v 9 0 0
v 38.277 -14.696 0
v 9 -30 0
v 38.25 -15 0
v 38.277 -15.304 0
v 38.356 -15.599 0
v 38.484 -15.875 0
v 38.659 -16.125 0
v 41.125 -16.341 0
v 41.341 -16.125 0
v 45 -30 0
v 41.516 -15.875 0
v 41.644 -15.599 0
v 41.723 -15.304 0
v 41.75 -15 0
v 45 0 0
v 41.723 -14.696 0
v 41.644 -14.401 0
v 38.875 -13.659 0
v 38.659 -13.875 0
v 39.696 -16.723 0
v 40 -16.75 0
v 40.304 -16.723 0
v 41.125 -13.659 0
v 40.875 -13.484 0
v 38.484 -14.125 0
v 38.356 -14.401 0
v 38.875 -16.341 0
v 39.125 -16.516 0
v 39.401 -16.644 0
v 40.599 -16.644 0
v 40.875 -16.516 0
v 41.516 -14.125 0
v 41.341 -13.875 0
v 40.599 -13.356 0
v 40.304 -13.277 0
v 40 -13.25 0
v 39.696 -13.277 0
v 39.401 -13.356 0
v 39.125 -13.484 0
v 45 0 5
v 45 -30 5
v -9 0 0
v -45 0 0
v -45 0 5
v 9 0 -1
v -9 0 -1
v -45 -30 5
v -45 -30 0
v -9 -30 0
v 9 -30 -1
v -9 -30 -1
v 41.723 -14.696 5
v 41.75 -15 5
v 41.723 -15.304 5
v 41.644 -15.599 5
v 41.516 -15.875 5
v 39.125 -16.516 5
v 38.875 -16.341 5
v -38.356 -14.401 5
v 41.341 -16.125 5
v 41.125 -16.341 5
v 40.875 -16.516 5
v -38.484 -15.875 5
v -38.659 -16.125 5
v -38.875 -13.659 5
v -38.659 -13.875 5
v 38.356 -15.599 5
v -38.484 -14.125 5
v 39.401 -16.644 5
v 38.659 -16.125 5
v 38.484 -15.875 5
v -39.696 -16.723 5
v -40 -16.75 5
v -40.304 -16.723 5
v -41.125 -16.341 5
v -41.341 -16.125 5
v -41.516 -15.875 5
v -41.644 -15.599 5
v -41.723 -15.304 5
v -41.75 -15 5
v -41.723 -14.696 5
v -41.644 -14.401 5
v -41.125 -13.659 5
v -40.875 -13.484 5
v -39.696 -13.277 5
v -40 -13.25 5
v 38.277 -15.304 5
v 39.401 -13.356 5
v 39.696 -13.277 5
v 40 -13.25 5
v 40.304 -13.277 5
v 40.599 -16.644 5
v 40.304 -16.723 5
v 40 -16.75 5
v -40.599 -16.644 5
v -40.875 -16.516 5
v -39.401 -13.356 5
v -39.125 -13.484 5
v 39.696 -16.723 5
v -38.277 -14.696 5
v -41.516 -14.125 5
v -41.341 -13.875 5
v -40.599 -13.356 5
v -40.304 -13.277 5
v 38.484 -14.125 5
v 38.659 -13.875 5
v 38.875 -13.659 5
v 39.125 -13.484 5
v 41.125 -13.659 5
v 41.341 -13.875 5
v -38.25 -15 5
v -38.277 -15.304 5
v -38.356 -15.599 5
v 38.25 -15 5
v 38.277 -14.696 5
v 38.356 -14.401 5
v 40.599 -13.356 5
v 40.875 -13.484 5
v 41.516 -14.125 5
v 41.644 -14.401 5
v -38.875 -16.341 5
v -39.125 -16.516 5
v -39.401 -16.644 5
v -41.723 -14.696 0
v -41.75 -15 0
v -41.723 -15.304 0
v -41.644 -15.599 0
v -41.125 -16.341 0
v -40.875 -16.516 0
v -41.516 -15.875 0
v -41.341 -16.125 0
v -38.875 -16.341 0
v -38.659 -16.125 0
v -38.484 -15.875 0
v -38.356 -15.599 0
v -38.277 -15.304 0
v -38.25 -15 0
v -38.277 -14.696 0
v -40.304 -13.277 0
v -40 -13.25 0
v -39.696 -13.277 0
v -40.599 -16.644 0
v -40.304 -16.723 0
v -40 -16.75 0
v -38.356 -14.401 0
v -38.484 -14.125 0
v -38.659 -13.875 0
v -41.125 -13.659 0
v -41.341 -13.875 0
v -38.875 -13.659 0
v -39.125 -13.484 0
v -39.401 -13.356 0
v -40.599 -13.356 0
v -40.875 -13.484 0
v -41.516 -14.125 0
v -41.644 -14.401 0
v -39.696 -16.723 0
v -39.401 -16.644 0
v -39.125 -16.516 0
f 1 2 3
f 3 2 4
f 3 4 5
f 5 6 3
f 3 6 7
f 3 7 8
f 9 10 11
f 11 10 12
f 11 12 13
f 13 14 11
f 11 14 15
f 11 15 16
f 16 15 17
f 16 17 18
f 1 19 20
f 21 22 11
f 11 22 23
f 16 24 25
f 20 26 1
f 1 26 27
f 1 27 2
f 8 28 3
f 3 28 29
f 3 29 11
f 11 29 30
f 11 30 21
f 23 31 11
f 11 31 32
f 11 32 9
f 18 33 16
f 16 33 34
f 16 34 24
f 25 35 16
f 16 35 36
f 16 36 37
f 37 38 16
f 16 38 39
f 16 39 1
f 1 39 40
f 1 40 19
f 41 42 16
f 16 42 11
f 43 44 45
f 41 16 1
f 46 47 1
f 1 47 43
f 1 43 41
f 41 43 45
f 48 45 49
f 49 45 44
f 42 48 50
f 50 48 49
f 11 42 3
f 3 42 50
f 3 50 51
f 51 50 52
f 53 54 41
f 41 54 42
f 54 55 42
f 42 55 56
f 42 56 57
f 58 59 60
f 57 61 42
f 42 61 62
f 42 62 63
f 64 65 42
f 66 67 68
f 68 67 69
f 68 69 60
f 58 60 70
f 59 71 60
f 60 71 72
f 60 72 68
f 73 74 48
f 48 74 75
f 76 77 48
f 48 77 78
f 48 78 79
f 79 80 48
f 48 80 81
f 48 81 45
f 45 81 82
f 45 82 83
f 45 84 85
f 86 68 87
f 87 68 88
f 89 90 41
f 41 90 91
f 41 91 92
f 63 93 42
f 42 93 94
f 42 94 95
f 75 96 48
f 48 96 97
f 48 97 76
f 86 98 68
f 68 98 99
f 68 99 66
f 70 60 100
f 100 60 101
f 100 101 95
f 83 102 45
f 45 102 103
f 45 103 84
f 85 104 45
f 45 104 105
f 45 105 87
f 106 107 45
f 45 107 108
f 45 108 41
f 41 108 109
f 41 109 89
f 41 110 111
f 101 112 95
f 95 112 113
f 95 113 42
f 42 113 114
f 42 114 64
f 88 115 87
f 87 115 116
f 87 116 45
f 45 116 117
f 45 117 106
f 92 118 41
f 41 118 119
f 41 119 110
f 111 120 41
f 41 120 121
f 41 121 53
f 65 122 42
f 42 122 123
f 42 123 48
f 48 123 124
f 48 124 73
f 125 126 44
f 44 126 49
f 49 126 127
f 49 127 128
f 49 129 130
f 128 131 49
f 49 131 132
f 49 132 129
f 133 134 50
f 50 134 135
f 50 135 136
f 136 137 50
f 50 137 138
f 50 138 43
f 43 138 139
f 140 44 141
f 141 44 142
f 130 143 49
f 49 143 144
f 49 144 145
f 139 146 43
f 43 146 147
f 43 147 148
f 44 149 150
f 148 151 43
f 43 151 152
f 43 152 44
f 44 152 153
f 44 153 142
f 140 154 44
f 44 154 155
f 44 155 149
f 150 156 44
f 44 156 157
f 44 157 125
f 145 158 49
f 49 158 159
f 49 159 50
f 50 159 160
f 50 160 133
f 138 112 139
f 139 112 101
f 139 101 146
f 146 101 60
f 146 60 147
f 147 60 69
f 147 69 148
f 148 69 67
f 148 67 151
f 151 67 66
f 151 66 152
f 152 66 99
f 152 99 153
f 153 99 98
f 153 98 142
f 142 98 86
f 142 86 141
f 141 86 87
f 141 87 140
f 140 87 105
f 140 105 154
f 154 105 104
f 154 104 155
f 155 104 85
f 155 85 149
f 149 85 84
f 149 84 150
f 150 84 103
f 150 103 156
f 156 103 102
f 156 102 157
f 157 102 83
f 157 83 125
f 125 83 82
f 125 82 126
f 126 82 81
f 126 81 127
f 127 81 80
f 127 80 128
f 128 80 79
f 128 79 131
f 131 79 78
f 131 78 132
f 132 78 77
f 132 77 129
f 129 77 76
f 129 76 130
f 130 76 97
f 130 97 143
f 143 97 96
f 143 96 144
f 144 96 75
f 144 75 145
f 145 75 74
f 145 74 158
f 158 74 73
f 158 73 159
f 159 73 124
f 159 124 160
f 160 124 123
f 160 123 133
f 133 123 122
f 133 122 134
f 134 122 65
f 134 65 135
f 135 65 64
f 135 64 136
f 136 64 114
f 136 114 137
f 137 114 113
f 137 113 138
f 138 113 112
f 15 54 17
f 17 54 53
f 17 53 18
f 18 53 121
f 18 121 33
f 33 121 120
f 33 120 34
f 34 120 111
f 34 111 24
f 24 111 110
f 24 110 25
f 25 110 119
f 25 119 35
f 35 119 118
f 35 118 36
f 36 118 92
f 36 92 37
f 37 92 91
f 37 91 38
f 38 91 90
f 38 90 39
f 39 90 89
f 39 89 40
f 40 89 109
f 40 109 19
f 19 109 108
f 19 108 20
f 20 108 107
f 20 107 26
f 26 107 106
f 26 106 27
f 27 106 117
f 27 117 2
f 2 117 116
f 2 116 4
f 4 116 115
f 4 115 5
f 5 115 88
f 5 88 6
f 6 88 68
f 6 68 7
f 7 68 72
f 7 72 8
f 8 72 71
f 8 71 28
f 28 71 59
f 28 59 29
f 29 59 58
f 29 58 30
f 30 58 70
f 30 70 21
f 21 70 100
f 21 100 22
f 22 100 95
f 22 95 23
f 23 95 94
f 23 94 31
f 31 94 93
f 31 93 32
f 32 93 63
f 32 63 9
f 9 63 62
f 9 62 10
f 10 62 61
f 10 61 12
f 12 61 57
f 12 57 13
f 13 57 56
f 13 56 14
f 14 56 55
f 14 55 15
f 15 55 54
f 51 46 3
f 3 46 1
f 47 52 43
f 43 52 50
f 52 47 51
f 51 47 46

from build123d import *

# Parameters (mm, degrees)
SKETCH1_W           = 90
SKETCH1_H           = 30
BOSS_EXTRUDE1_DEPTH = 5
SKETCH2_R           = 1.75
CUT_EXTRUDE1_DEPTH  = 55.313902456
SKETCH3_W           = 18
SKETCH3_H           = 30
BOSS_EXTRUDE2_DEPTH = 1


with BuildPart() as part:
    # Sketch1 → Boss-Extrude1 (new body)
    with BuildSketch(Plane.XY):
        with Locations((0, -15)):
            Rectangle(SKETCH1_W, SKETCH1_H)
    extrude(amount=BOSS_EXTRUDE1_DEPTH)

    # Sketch2 → Cut-Extrude1 (cut, through all)
    with BuildSketch(Plane.XY.offset(5)):
        with Locations((40, -15)):
            Circle(SKETCH2_R)
        with Locations((-40, -15)):
            Circle(SKETCH2_R)
    extrude(amount=-CUT_EXTRUDE1_DEPTH, mode=Mode.SUBTRACT)

    # Sketch3 → Boss-Extrude2 (add)
    with BuildSketch(Plane(origin=(0, 0, 0), x_dir=(-1, 0, 0), z_dir=(0, 0, -1))):
        with Locations((0, -15)):
            Rectangle(SKETCH3_W, SKETCH3_H)
    extrude(amount=BOSS_EXTRUDE2_DEPTH)


solid = part.part
